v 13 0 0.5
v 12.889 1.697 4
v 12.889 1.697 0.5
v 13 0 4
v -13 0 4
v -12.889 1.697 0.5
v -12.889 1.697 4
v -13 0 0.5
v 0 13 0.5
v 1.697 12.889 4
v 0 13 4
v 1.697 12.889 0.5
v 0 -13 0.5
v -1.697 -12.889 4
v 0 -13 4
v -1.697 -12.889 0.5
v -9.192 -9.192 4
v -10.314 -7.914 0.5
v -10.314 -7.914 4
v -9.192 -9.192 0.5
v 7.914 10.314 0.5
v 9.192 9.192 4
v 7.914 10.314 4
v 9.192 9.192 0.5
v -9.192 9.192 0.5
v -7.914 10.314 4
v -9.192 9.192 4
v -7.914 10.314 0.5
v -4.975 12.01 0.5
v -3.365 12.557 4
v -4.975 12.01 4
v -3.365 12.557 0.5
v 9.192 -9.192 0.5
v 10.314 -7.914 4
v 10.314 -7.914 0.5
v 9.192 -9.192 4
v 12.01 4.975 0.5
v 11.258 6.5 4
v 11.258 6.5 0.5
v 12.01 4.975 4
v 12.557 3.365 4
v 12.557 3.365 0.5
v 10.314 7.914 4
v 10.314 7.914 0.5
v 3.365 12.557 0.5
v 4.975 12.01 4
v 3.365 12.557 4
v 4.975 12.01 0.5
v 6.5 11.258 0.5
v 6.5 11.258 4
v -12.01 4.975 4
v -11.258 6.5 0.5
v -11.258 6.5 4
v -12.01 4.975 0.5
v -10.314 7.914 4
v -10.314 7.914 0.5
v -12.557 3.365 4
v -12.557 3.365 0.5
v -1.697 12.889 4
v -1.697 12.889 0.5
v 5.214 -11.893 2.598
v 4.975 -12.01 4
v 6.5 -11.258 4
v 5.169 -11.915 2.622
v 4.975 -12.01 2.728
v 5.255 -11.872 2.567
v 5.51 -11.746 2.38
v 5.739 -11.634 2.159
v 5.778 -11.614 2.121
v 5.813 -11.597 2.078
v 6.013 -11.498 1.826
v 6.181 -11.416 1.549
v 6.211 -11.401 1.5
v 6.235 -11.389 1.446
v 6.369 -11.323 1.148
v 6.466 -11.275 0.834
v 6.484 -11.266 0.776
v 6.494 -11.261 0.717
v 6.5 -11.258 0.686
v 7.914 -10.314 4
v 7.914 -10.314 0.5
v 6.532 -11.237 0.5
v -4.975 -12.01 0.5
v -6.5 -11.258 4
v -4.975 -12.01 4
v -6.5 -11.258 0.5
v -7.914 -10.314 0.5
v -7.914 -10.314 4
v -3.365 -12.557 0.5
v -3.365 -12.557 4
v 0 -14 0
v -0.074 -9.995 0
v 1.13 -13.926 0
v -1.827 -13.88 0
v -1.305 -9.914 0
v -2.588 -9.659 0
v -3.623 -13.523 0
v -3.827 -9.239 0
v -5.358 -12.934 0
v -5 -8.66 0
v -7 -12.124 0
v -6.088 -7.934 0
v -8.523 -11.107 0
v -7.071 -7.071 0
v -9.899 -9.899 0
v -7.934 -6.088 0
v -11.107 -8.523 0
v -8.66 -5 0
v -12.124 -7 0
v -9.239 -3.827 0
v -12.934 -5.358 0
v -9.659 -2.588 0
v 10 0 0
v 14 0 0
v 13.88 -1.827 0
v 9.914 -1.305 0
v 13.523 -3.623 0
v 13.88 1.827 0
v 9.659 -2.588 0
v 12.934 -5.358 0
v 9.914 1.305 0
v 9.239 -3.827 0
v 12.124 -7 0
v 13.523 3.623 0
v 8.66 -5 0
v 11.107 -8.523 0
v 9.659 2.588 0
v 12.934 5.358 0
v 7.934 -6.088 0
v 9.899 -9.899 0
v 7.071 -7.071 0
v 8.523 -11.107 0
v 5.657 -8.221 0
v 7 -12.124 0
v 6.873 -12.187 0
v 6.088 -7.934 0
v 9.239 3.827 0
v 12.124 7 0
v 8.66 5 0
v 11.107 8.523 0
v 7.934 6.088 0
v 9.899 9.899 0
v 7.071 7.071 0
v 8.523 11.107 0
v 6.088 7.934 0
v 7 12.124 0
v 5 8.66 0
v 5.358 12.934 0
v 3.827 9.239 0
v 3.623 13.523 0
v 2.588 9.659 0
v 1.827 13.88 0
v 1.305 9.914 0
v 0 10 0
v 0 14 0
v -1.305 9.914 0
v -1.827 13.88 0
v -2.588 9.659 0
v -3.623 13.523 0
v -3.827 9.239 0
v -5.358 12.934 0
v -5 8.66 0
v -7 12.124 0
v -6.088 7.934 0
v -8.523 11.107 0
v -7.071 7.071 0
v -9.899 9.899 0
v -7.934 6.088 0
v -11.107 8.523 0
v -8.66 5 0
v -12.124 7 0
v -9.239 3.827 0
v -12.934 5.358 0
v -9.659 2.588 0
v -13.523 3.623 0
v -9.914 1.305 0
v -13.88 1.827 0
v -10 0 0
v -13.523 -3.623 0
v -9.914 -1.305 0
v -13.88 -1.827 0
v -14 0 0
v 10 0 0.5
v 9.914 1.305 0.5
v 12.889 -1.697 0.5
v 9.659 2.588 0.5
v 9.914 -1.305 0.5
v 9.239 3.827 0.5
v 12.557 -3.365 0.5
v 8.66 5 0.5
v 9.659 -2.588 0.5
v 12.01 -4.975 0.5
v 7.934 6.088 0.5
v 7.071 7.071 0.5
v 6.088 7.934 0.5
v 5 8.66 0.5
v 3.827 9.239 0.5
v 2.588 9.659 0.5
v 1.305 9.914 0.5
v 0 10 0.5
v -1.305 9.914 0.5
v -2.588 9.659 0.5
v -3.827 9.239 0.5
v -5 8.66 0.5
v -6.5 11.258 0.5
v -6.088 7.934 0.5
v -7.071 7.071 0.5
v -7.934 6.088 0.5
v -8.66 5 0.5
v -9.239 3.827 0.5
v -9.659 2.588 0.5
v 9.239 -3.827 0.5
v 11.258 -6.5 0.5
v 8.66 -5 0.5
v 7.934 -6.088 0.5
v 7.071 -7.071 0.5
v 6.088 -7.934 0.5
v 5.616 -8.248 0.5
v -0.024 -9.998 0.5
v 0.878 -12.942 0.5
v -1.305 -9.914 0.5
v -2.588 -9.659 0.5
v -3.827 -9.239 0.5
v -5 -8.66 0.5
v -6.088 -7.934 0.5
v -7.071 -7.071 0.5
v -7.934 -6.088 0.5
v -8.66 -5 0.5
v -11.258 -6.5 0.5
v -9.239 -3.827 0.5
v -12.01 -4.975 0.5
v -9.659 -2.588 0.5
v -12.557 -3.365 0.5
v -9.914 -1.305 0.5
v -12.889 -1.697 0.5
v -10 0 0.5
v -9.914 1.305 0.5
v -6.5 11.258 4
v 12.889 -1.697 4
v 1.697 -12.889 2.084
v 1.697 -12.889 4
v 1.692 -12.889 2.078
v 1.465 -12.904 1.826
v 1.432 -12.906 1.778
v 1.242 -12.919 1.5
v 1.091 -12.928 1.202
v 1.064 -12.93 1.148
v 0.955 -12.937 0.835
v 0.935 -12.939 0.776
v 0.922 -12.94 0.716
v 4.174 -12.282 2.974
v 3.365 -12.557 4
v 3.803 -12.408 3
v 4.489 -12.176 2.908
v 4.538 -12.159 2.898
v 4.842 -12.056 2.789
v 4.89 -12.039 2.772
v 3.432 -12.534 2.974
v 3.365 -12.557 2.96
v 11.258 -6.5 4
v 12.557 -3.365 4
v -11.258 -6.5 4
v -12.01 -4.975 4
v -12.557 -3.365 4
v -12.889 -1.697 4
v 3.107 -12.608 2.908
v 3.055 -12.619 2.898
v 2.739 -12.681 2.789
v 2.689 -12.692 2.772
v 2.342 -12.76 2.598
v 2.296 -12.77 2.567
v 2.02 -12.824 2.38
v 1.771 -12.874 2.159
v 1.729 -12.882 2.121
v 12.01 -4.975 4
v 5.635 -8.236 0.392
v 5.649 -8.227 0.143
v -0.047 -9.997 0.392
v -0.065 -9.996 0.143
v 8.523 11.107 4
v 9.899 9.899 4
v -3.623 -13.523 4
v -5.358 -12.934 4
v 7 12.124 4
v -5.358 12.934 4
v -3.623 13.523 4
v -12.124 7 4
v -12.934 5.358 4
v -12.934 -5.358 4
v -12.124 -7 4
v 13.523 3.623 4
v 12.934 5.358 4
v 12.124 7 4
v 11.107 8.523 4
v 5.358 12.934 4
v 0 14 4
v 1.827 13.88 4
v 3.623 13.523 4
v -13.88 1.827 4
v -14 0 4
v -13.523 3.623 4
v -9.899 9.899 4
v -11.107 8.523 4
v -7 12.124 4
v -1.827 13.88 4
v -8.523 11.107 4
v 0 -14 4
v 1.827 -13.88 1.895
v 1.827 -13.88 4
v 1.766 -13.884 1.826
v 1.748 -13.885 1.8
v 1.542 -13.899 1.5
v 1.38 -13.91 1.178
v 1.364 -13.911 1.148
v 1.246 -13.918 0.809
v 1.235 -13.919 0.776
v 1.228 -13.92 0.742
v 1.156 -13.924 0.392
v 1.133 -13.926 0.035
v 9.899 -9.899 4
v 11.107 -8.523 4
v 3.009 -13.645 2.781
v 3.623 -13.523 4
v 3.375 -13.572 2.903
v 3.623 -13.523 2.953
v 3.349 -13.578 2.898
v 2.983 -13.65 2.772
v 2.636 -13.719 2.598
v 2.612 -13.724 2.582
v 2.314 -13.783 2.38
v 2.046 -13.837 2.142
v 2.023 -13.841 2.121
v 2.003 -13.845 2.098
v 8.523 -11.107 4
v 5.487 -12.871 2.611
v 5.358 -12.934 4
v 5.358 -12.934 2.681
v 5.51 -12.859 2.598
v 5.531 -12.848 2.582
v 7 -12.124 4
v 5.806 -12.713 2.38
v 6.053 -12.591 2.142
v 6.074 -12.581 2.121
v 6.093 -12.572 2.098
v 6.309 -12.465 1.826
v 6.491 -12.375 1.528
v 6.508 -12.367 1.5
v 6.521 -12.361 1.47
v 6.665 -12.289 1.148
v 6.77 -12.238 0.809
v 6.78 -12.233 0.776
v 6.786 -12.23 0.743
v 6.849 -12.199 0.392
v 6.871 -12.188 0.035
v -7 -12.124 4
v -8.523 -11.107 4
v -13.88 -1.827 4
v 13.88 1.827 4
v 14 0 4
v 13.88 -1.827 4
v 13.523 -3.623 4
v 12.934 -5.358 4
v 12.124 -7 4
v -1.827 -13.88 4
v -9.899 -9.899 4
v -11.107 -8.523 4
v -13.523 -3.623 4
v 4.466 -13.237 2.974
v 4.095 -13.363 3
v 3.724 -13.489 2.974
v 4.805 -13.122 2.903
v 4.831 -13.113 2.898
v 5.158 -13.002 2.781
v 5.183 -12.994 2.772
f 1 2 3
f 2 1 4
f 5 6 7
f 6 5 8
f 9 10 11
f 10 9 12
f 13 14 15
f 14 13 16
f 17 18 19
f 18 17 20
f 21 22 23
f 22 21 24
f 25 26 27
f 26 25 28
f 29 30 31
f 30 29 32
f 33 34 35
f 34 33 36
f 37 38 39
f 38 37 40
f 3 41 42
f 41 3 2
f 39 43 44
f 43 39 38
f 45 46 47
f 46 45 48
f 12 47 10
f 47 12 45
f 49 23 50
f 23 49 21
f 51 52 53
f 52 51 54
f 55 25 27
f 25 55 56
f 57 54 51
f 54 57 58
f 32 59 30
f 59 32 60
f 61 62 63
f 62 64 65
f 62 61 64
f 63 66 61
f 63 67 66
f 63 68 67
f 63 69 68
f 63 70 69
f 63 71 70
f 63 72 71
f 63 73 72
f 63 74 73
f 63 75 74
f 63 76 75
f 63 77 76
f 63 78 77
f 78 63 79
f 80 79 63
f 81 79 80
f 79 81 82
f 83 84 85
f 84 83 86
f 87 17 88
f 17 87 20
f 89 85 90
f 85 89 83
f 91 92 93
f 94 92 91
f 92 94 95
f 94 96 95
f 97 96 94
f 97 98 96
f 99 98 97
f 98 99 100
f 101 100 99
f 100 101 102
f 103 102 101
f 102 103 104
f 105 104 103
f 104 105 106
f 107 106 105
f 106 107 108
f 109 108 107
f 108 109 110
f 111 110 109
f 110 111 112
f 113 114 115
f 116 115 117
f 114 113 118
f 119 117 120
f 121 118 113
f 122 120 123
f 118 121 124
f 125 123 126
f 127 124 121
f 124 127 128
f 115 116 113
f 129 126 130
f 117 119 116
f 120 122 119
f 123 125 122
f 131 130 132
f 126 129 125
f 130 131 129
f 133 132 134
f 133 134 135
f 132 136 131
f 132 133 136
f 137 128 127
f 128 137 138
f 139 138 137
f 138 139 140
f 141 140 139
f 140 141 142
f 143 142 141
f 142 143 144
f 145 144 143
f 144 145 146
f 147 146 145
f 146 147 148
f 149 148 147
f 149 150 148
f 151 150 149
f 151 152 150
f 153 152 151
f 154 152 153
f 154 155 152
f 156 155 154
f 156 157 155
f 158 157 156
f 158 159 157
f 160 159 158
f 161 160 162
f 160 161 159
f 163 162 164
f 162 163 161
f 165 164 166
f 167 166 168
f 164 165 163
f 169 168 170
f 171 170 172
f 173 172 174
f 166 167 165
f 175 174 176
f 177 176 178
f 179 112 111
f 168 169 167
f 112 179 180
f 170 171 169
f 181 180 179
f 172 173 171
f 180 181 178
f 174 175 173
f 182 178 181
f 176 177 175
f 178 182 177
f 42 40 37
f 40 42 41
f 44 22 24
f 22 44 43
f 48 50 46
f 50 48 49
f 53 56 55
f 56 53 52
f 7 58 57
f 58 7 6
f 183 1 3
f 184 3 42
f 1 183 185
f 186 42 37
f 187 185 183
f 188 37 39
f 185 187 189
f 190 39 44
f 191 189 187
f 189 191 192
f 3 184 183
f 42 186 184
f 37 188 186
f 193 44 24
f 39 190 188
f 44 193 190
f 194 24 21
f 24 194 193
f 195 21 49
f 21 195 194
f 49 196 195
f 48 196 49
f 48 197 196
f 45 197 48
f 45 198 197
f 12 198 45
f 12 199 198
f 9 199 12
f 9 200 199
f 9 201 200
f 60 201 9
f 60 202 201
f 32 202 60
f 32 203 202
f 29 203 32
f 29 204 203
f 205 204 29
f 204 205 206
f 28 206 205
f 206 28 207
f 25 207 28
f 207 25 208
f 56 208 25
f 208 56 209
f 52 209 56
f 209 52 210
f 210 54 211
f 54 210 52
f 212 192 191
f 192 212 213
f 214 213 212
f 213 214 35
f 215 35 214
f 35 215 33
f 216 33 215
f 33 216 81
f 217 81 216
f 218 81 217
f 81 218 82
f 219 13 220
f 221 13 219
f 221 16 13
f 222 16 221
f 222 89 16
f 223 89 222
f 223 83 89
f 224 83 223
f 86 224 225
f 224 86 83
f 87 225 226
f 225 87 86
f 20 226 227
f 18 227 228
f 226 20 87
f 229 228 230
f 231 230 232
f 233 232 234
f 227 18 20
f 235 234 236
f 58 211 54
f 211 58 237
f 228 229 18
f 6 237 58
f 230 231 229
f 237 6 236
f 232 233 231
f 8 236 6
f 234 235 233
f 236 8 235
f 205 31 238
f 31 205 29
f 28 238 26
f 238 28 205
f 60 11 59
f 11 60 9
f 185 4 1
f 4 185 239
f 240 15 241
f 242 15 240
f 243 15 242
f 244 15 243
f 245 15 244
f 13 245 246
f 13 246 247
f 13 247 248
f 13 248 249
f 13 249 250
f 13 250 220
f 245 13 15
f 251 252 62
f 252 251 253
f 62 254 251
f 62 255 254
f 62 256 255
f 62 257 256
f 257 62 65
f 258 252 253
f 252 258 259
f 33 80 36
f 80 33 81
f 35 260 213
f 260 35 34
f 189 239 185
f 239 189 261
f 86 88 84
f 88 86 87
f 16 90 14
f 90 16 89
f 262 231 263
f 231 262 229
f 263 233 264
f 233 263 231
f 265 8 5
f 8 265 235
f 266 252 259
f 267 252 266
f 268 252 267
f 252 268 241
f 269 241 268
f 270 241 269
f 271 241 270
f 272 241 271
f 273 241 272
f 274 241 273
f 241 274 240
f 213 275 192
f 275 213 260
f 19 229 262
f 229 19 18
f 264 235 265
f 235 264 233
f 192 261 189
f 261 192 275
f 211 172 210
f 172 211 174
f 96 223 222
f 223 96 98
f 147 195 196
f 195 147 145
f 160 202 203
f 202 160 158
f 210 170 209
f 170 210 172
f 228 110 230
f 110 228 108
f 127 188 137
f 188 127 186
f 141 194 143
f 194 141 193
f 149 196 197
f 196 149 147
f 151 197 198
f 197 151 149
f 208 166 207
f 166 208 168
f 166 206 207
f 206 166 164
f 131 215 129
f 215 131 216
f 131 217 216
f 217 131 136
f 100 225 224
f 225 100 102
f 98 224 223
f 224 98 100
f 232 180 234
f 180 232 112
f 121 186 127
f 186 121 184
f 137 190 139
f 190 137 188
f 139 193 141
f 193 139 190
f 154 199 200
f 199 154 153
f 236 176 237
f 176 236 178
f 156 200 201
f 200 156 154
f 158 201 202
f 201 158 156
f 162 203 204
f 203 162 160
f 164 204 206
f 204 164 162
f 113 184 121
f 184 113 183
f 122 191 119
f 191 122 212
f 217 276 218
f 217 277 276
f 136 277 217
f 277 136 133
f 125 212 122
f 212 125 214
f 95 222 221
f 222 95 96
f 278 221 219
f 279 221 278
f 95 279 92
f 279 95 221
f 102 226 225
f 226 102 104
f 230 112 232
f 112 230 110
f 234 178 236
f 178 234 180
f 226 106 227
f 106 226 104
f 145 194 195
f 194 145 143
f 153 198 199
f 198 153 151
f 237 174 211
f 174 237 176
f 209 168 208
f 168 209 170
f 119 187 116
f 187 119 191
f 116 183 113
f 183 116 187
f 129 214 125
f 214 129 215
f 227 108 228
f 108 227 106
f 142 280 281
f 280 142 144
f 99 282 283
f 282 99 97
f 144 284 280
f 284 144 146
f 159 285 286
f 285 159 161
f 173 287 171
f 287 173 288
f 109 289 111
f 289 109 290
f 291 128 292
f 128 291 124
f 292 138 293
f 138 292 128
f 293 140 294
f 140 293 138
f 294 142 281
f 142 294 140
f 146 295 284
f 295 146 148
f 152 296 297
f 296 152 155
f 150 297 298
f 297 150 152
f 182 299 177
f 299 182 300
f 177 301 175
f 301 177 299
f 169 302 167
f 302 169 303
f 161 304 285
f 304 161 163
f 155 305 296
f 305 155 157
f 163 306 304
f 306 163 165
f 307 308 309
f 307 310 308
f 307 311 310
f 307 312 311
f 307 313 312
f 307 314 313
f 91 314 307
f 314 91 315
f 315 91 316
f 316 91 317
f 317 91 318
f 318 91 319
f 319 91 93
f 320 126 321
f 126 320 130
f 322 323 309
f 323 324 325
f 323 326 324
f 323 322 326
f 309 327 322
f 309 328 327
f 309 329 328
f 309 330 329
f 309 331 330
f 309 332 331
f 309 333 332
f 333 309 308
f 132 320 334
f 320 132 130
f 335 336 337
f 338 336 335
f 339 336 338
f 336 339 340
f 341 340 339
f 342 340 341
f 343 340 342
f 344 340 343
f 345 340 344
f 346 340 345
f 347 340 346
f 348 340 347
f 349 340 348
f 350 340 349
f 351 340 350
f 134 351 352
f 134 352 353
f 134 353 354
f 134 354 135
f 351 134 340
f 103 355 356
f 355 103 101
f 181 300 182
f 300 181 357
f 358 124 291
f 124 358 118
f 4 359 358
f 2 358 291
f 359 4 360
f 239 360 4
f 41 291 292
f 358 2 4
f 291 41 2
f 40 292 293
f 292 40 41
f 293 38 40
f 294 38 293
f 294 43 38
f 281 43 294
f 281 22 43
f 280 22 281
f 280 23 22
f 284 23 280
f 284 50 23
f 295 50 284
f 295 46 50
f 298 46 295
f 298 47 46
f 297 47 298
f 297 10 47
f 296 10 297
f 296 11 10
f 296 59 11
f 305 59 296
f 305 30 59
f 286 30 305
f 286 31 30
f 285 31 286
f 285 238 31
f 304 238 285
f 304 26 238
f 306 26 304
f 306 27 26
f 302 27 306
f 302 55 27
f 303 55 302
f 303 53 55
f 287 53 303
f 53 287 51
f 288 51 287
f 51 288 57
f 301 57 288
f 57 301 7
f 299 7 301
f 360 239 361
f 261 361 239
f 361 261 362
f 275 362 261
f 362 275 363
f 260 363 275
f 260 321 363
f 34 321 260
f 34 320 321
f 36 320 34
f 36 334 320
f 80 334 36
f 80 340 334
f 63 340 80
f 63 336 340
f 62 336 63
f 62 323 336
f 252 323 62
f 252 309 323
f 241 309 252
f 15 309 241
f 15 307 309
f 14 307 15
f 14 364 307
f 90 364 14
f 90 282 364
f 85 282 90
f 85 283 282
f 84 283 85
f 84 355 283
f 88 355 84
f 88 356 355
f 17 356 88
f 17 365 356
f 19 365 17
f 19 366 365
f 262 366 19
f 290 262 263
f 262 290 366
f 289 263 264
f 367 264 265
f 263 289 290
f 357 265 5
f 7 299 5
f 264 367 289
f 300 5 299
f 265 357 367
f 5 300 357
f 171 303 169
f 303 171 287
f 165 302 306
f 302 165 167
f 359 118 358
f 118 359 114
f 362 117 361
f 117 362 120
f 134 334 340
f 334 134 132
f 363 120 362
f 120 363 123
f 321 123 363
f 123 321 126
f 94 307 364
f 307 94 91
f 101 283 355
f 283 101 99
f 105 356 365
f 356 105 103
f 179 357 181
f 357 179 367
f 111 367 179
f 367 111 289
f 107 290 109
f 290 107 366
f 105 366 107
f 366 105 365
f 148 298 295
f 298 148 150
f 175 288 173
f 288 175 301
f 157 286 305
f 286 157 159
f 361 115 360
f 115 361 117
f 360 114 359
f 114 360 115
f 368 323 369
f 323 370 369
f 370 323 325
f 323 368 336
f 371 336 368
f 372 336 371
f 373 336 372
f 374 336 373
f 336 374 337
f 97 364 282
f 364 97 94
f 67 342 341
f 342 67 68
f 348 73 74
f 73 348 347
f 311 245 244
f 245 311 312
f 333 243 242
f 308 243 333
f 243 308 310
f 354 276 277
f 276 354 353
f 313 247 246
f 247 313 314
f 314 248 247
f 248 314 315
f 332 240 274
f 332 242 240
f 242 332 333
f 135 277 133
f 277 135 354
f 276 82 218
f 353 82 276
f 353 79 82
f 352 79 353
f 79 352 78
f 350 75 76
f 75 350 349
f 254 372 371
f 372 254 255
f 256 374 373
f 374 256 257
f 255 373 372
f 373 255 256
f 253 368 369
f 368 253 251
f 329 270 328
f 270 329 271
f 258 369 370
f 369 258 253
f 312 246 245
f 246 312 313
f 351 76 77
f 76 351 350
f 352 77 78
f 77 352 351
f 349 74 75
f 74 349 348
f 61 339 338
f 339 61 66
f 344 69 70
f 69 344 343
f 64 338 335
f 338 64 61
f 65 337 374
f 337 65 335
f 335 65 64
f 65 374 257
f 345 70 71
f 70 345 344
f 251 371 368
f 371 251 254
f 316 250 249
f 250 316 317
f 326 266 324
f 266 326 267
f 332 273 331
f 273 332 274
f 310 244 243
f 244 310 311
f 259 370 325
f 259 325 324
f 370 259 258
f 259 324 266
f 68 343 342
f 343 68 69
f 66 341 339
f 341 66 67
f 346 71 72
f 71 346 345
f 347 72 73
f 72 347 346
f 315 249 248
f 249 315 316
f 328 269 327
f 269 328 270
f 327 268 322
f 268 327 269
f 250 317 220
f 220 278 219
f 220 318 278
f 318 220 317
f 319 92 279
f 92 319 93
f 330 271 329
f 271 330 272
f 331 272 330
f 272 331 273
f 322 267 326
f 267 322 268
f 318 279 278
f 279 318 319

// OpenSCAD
// file: ../build_environments.scad
// build_environments.scad: modules to build level sections
//

module pool(diameter=10.0, wall_height=2.0, step_width=3.0, connections=[])
{
    difference() {
        union() {
        difference() {
            cylinder(h=0.5,r1=diameter+step_width,r2=diameter+step_width,$fn=48);
            translate([0,0,-0.1])
                cylinder(h=0.7,r1=diameter,r2=diameter,$fn=48);
        }
        difference() {
            cylinder(h=wall_height,r1=diameter+step_width+1.0,r2=diameter+step_width+1.0,$fn=48);
            translate([0,0,-0.1])
                cylinder(h=wall_height+0.2,r1=diameter+step_width,r2=diameter+step_width,$fn=48);
        }
        }
    
        for (c = connections)
        {
            rotate([0,90,0]) {
                angle = atan2(c[1],c[0]);
                rotate([-angle,0,0]) {
                    cylinder(h=diameter+5.0,r1=c[2],r2=c[2],$fn=48);
                }
            }
        }
    }
}

module straight(length=10.0, width=2.0, dy1=0.0, dy2=0.0, dz=0.0)
{
    dims = [0, 0, 0, 0, 0, (dz/length)];
    matrix = [
        [ 1, dims[0], dims[1], 0 ],
        [ dims[2], 1, dims[4], 0 ],
        [ dims[5], dims[3], 1, 0 ],
        [ 0, 0, 0, 1 ]
    ];
    multmatrix(matrix)
    difference() {
        translate([dy1,0,0])
        union() {
            rotate([0,90,0]) {
                difference() {
                    cylinder(h=(length-dy1-dy2),r1=width+1.0,r2=width+1.0,$fn=24);
                    translate([0,0,-0.1])
                        cylinder(h=(length-dy1-dy2+0.2),r1=width,r2=width,$fn=24);
                }
                difference() {
                    cylinder(h=1.0,r1=width+2.0,r2=width+2.0,$fn=24);
                    translate([0,0,-0.1])
                        cylinder(h=1.2,r1=width,r2=width,$fn=24);
                }
                translate([0,0,(length-dy1-dy2)-1.0]) {
                    difference() {
                        cylinder(h=1.0,r1=width+2.0,r2=width+2.0,$fn=24);
                        translate([0,0,-0.1])
                            cylinder(h=1.2,r1=width,r2=width,$fn=24);
                    }
                }
            }
        }
        translate([0,0,-(2*width+4.0)/2])
            cube([3*length,3*length,2*width+4.0],center=true);
    }
}

module curve(p0=[0,0], center=[0,0], dir=1, angle=0.0, width=2.0)
{
    radius = sqrt((p0[0]-center[0])*(p0[0]-center[0]) + (p0[1]-center[1])*(p0[1]-center[1]));
    if (dir == 0) {
        difference() {
            rotate([0,0,-90])
            difference() {
                rotate_extrude(angle = angle, convexity = 10, $fn=32)
                    translate([radius, 0, 0])
                        circle(r = width+1.0,$fn=24);
                rotate([0,0,-1.0])
                    rotate_extrude(angle = angle+2.0, convexity = 10, $fn=32)
                        translate([radius, 0, 0])
                            circle(r = width,$fn=24);
            }
            translate([0,0,-(2*width+4.0)/2])
                cube([5*radius,5*radius,2*width+4.0],center=true);
        }
    }
    else {
        difference() {
            rotate([0,0,90])
            difference() {
                rotate_extrude(angle = -angle, convexity = 10, $fn=32)
                    translate([radius, 0, 0])
                        circle(r = width+1.0,$fn=24);
                rotate([0,0,1.0])
                    rotate_extrude(angle = -angle-2.0, convexity = 10, $fn=32)
                        translate([radius, 0, 0])
                            circle(r = width,$fn=24);
            }
            translate([0,0,-(2*width+4.0)/2])
                cube([5*radius,5*radius,2*width+4.0],center=true);
        }
    }

}

// test pool
//pool(diameter=12.0000, wall_height=3.0000, step_width=3.0000, connections=[[0.0000,-26.0000,2.0000], [23.6074,0.0000,2.0000]]);

// test straight, slope
//straight(length=26.0000, width=2.0000, dy1=11.8322, dy2=6.7082, dz=0.0000);
//straight(length=29.1549, width=12.0000, dy1=0.0000, dy2=0.0000, dz=-15.0000);

// test curve
//curve(p0=[23.6074, 0.0000], center=[23.6074, 5.0000], dir=0, angle=60.1011, width=2.0000);
//curve(p0=[33.6426, 12.4219], center=[37.9771, 9.9295], dir=1, angle=120.4627, width=2.0000);
// main file
use <../build_environments.scad>;
pool(diameter=10.0000, wall_height=4.0000, step_width=3.0000, connections=[[7.9317,-25.8806,3.0000]]);
